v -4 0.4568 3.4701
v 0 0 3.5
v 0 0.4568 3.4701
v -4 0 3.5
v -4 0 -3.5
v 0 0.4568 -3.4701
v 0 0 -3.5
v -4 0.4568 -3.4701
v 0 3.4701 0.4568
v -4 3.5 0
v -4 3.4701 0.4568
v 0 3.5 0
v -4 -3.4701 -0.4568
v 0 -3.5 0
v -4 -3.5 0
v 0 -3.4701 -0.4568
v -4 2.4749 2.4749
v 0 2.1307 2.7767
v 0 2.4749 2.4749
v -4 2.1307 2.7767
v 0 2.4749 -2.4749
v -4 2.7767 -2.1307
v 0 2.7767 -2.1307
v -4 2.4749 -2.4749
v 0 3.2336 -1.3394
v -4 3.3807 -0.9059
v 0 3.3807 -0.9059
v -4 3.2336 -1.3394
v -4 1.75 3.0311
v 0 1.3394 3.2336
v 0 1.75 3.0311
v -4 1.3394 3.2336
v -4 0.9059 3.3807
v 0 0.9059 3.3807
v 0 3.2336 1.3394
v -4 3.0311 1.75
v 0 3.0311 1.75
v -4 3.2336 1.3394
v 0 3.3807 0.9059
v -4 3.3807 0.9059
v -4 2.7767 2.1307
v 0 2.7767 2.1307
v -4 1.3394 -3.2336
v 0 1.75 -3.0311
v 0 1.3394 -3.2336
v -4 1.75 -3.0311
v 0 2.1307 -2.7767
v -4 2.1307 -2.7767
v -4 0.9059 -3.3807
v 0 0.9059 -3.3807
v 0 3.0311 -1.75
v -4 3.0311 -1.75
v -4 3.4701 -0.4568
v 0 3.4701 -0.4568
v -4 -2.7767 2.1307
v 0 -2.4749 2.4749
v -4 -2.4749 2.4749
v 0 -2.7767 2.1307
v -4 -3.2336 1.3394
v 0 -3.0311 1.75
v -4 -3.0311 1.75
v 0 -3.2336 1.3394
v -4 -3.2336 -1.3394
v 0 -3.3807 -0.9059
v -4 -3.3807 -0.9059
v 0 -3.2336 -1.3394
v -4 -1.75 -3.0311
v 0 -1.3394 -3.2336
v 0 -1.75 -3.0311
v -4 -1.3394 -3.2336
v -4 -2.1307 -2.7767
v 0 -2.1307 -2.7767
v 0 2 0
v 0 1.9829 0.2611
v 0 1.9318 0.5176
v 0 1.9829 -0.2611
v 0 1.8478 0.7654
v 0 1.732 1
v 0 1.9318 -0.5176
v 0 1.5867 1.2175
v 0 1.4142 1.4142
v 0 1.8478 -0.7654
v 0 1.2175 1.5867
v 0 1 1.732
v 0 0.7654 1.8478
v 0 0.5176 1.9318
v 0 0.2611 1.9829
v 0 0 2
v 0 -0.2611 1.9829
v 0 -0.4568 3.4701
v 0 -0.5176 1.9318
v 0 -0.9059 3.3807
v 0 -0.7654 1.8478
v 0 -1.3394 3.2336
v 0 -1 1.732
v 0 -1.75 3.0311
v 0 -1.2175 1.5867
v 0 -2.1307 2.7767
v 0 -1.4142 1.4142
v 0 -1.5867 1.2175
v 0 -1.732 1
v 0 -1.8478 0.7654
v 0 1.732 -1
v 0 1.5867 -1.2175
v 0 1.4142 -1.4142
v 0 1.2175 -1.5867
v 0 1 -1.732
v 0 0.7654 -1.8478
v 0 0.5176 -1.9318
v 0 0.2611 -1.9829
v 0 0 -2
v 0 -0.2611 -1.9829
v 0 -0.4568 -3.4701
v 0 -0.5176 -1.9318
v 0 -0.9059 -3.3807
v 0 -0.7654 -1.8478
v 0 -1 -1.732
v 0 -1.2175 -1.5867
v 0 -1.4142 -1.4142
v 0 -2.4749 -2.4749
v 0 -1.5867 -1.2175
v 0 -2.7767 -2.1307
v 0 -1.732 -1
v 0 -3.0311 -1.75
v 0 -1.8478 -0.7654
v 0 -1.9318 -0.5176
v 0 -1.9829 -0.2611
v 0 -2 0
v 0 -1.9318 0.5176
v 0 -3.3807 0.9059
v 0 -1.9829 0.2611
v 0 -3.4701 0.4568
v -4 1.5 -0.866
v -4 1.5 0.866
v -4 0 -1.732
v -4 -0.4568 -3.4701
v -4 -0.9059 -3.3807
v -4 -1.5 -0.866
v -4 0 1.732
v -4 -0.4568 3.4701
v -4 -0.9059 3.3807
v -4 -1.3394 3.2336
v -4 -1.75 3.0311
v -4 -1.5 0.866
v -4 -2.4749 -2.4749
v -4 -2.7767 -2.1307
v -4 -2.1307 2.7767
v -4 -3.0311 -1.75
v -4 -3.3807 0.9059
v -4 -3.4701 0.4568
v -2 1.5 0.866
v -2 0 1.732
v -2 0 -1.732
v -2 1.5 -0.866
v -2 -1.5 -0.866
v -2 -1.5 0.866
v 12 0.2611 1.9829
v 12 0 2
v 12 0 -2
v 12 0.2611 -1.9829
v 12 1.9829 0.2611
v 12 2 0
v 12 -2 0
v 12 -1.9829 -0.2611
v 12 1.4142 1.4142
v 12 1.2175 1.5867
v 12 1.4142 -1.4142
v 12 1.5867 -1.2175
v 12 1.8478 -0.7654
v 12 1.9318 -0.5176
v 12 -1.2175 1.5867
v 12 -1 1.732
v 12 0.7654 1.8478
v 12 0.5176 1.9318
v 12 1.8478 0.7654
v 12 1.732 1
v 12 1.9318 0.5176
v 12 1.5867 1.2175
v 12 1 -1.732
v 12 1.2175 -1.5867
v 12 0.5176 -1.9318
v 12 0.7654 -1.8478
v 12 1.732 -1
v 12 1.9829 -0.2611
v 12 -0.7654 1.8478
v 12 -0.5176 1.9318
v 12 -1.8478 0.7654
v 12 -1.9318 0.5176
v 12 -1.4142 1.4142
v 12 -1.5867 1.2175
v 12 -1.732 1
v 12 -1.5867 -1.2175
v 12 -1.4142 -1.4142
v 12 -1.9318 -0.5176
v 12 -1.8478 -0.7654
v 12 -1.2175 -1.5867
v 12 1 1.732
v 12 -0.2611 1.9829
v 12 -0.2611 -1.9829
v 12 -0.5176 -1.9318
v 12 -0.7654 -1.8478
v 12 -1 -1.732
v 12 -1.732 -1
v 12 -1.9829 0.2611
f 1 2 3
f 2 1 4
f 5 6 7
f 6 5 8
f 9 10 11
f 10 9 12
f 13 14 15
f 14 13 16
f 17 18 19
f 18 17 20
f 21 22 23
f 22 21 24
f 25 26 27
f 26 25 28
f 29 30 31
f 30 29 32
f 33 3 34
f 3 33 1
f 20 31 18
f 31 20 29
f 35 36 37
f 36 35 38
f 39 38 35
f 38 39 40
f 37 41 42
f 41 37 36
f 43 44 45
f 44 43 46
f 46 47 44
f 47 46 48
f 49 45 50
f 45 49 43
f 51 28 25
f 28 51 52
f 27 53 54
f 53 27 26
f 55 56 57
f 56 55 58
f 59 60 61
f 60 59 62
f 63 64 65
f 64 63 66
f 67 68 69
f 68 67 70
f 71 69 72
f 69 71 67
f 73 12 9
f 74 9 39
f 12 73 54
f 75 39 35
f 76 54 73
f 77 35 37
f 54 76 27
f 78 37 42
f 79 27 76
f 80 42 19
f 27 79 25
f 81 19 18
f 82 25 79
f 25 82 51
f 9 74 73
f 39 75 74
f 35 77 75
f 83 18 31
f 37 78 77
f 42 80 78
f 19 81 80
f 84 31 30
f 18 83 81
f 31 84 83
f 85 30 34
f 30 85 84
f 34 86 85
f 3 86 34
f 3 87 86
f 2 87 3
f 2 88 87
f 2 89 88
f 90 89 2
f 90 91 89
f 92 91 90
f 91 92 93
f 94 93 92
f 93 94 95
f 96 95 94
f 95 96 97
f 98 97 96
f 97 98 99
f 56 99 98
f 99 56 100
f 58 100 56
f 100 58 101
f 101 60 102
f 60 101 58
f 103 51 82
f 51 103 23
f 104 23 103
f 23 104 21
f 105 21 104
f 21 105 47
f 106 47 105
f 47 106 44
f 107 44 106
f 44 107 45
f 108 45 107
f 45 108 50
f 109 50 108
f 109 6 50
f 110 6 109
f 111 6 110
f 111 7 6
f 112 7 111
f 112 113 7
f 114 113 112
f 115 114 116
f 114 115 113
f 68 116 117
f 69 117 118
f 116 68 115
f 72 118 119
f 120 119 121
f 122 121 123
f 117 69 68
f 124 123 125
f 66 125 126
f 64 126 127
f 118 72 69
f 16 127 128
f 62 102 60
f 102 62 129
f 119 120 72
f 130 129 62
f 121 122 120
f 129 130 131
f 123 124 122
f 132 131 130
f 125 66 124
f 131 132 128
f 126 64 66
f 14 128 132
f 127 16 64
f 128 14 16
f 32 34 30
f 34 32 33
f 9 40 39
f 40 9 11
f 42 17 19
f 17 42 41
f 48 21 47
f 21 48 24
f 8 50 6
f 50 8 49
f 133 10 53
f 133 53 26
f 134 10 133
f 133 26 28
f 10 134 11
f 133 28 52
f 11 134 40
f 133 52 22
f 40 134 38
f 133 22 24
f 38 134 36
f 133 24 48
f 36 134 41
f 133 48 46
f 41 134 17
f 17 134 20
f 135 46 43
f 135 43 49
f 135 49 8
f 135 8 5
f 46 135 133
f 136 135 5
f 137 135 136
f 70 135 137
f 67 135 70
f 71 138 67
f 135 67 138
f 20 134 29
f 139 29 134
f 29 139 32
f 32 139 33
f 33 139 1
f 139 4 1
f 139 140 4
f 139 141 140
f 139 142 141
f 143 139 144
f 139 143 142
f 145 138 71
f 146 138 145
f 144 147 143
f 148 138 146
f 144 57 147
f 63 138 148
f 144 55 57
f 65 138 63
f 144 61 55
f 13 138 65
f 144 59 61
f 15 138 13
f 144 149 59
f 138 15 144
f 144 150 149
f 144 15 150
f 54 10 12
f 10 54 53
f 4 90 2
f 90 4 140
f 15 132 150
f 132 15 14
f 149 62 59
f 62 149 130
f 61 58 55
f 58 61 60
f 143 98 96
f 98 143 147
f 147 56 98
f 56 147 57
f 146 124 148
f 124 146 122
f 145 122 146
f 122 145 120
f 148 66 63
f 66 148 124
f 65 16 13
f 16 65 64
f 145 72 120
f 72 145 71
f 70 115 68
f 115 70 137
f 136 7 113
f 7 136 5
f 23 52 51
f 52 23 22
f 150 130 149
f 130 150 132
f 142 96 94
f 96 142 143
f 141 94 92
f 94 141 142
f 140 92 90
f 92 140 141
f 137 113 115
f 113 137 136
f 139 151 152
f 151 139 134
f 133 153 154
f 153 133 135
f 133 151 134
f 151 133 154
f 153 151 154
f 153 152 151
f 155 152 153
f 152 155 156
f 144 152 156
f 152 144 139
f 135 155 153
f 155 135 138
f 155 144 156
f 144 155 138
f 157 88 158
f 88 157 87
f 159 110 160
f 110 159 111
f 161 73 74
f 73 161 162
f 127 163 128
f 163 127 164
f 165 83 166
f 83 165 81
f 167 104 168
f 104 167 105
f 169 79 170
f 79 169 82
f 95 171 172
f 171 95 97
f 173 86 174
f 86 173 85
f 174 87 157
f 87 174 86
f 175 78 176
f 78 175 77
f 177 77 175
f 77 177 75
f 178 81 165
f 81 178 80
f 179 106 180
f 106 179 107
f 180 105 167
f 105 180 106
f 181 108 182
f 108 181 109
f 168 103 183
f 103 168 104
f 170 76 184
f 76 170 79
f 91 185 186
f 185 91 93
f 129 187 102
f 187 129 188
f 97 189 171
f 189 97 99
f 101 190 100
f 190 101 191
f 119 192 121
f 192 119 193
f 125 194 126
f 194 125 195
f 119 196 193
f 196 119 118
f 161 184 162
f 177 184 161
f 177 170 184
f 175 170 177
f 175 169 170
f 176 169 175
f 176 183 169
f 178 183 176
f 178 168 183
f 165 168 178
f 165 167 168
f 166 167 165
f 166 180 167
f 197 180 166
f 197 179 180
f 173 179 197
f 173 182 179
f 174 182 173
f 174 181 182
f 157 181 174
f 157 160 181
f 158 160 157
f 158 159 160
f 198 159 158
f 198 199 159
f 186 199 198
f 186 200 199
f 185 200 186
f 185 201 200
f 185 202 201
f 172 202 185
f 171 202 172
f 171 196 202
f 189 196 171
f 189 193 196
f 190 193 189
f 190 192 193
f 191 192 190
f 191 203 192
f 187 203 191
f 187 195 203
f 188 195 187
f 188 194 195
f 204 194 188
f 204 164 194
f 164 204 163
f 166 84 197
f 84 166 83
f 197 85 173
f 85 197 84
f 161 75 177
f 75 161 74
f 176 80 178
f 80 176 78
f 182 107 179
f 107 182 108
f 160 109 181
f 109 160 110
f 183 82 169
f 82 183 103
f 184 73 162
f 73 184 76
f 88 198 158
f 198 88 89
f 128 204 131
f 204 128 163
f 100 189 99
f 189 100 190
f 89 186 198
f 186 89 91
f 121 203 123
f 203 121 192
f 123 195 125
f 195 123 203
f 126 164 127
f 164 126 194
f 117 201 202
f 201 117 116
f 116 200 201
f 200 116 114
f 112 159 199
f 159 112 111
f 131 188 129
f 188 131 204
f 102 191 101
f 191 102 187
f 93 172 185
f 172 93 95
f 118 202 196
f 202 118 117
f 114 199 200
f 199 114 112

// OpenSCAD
// file: ../../../lib/nutsnbolts/data-access.scad
// Norm Nuts and Bolts - a OpenSCAD library
// Copyright (C) 2012  Johannes Kneer

// This program is free software: you can redistribute it and/or modify
// it under the terms of the GNU General Public License as published by
// the Free Software Foundation, either version 3 of the License, or
// (at your option) any later version.

// This program is distributed in the hope that it will be useful,
// but WITHOUT ANY WARRANTY; without even the implied warranty of
// MERCHANTABILITY or FITNESS FOR A PARTICULAR PURPOSE.  See the
// GNU General Public License for more details.

// You should have received a copy of the GNU General Public License
// along with this program.  If not, see <http://www.gnu.org/licenses/>.


// DATABASE ACCESS FUNCTIONS AND CONSTANTS



// == CONSTANTS ==

// screw table access keys
_NB_S_DESC            = 0;
_NB_S_FAMKEY			    = 1;
_NB_S_LENGTH          = 2;
_NB_S_NOTHREAD_LENGTH = 3;

_NB_F_DESC			      = 0;
_NB_F_OUTER_DIA       = 1;
_NB_F_INNER_DIA       = 2;
_NB_F_LEAD            = 3;
_NB_F_KEY             = 4;
_NB_F_KEY_DEPTH       = 5;
_NB_F_HEAD_HEIGHT     = 6;
_NB_F_HEAD_DIA        = 7;
_NB_F_NUT_KEY         = 8;
_NB_F_NUT_HEIGHT      = 9;
_NB_F_PITCH_FINE      = 10;
_NB_F_PITCH_MEDIUM    = 11;
_NB_F_PITCH_COARSE    = 12;


// == FUNCTIONS ==

// _get_screw("descriptor")   with descriptor = M8x25
//   find the line for a general object in the data matrix

function _get_screw(n) = data_screw[search([n], data_screw)[0]];
function _get_screw_fam(n) = data_screw_fam[search([_get_screw(n)[_NB_S_FAMKEY]], data_screw_fam)[0]];

function _get_fam(n) = data_screw_fam[search([n], data_screw_fam)[0]];


// _get_XXXXX("descriptor") functions
// find a single property in the database

function _get_desc(n)        = _get_screw(n)[_NB_S_DESC];
function _get_famkey(n)         = _get_screw(n)[_NB_S_FAMKEY];
function _get_length(n)      = _get_screw(n)[_NB_S_LENGTH];
function _get_nt_length(n)   = _get_screw(n)[_NB_S_NOTHREAD_LENGTH];

function _get_outer_dia(n)   = _get_screw_fam(n)[_NB_F_OUTER_DIA];
function _get_inner_dia(n)   = _get_screw_fam(n)[_NB_F_INNER_DIA];
function _get_lead(n)        = _get_screw_fam(n)[_NB_F_LEAD];
function _get_head_height(n) = _get_screw_fam(n)[_NB_F_HEAD_HEIGHT];
function _get_head_dia(n)    = _get_screw_fam(n)[_NB_F_HEAD_DIA];
function _get_nut_key(n)     = _get_screw_fam(n)[_NB_F_NUT_KEY];
function _get_nut_height(n)  = _get_screw_fam(n)[_NB_F_NUT_HEIGHT];
function _get_fine_pitch(n)  = _get_screw_fam(n)[_NB_F_PITCH_FINE];
function _get_medium_pitch(n)  = _get_screw_fam(n)[_NB_F_PITCH_MEDIUM];
function _get_coarse_pitch(n)  = _get_screw_fam(n)[_NB_F_PITCH_COARSE];
// main file
/**********************************************************************************************************************
 **
 ** parts/vitamins/screw_M4x12.scad
 **
 ** This file renders a screw of the dimensions specified by the file name.
 **
 **********************************************************************************************************************/

include <../../../lib/nutsnbolts/cyl_head_bolt.scad>;

$fn = 48;
rotate([0, -90, 0])
	screw("M4x12"); 
